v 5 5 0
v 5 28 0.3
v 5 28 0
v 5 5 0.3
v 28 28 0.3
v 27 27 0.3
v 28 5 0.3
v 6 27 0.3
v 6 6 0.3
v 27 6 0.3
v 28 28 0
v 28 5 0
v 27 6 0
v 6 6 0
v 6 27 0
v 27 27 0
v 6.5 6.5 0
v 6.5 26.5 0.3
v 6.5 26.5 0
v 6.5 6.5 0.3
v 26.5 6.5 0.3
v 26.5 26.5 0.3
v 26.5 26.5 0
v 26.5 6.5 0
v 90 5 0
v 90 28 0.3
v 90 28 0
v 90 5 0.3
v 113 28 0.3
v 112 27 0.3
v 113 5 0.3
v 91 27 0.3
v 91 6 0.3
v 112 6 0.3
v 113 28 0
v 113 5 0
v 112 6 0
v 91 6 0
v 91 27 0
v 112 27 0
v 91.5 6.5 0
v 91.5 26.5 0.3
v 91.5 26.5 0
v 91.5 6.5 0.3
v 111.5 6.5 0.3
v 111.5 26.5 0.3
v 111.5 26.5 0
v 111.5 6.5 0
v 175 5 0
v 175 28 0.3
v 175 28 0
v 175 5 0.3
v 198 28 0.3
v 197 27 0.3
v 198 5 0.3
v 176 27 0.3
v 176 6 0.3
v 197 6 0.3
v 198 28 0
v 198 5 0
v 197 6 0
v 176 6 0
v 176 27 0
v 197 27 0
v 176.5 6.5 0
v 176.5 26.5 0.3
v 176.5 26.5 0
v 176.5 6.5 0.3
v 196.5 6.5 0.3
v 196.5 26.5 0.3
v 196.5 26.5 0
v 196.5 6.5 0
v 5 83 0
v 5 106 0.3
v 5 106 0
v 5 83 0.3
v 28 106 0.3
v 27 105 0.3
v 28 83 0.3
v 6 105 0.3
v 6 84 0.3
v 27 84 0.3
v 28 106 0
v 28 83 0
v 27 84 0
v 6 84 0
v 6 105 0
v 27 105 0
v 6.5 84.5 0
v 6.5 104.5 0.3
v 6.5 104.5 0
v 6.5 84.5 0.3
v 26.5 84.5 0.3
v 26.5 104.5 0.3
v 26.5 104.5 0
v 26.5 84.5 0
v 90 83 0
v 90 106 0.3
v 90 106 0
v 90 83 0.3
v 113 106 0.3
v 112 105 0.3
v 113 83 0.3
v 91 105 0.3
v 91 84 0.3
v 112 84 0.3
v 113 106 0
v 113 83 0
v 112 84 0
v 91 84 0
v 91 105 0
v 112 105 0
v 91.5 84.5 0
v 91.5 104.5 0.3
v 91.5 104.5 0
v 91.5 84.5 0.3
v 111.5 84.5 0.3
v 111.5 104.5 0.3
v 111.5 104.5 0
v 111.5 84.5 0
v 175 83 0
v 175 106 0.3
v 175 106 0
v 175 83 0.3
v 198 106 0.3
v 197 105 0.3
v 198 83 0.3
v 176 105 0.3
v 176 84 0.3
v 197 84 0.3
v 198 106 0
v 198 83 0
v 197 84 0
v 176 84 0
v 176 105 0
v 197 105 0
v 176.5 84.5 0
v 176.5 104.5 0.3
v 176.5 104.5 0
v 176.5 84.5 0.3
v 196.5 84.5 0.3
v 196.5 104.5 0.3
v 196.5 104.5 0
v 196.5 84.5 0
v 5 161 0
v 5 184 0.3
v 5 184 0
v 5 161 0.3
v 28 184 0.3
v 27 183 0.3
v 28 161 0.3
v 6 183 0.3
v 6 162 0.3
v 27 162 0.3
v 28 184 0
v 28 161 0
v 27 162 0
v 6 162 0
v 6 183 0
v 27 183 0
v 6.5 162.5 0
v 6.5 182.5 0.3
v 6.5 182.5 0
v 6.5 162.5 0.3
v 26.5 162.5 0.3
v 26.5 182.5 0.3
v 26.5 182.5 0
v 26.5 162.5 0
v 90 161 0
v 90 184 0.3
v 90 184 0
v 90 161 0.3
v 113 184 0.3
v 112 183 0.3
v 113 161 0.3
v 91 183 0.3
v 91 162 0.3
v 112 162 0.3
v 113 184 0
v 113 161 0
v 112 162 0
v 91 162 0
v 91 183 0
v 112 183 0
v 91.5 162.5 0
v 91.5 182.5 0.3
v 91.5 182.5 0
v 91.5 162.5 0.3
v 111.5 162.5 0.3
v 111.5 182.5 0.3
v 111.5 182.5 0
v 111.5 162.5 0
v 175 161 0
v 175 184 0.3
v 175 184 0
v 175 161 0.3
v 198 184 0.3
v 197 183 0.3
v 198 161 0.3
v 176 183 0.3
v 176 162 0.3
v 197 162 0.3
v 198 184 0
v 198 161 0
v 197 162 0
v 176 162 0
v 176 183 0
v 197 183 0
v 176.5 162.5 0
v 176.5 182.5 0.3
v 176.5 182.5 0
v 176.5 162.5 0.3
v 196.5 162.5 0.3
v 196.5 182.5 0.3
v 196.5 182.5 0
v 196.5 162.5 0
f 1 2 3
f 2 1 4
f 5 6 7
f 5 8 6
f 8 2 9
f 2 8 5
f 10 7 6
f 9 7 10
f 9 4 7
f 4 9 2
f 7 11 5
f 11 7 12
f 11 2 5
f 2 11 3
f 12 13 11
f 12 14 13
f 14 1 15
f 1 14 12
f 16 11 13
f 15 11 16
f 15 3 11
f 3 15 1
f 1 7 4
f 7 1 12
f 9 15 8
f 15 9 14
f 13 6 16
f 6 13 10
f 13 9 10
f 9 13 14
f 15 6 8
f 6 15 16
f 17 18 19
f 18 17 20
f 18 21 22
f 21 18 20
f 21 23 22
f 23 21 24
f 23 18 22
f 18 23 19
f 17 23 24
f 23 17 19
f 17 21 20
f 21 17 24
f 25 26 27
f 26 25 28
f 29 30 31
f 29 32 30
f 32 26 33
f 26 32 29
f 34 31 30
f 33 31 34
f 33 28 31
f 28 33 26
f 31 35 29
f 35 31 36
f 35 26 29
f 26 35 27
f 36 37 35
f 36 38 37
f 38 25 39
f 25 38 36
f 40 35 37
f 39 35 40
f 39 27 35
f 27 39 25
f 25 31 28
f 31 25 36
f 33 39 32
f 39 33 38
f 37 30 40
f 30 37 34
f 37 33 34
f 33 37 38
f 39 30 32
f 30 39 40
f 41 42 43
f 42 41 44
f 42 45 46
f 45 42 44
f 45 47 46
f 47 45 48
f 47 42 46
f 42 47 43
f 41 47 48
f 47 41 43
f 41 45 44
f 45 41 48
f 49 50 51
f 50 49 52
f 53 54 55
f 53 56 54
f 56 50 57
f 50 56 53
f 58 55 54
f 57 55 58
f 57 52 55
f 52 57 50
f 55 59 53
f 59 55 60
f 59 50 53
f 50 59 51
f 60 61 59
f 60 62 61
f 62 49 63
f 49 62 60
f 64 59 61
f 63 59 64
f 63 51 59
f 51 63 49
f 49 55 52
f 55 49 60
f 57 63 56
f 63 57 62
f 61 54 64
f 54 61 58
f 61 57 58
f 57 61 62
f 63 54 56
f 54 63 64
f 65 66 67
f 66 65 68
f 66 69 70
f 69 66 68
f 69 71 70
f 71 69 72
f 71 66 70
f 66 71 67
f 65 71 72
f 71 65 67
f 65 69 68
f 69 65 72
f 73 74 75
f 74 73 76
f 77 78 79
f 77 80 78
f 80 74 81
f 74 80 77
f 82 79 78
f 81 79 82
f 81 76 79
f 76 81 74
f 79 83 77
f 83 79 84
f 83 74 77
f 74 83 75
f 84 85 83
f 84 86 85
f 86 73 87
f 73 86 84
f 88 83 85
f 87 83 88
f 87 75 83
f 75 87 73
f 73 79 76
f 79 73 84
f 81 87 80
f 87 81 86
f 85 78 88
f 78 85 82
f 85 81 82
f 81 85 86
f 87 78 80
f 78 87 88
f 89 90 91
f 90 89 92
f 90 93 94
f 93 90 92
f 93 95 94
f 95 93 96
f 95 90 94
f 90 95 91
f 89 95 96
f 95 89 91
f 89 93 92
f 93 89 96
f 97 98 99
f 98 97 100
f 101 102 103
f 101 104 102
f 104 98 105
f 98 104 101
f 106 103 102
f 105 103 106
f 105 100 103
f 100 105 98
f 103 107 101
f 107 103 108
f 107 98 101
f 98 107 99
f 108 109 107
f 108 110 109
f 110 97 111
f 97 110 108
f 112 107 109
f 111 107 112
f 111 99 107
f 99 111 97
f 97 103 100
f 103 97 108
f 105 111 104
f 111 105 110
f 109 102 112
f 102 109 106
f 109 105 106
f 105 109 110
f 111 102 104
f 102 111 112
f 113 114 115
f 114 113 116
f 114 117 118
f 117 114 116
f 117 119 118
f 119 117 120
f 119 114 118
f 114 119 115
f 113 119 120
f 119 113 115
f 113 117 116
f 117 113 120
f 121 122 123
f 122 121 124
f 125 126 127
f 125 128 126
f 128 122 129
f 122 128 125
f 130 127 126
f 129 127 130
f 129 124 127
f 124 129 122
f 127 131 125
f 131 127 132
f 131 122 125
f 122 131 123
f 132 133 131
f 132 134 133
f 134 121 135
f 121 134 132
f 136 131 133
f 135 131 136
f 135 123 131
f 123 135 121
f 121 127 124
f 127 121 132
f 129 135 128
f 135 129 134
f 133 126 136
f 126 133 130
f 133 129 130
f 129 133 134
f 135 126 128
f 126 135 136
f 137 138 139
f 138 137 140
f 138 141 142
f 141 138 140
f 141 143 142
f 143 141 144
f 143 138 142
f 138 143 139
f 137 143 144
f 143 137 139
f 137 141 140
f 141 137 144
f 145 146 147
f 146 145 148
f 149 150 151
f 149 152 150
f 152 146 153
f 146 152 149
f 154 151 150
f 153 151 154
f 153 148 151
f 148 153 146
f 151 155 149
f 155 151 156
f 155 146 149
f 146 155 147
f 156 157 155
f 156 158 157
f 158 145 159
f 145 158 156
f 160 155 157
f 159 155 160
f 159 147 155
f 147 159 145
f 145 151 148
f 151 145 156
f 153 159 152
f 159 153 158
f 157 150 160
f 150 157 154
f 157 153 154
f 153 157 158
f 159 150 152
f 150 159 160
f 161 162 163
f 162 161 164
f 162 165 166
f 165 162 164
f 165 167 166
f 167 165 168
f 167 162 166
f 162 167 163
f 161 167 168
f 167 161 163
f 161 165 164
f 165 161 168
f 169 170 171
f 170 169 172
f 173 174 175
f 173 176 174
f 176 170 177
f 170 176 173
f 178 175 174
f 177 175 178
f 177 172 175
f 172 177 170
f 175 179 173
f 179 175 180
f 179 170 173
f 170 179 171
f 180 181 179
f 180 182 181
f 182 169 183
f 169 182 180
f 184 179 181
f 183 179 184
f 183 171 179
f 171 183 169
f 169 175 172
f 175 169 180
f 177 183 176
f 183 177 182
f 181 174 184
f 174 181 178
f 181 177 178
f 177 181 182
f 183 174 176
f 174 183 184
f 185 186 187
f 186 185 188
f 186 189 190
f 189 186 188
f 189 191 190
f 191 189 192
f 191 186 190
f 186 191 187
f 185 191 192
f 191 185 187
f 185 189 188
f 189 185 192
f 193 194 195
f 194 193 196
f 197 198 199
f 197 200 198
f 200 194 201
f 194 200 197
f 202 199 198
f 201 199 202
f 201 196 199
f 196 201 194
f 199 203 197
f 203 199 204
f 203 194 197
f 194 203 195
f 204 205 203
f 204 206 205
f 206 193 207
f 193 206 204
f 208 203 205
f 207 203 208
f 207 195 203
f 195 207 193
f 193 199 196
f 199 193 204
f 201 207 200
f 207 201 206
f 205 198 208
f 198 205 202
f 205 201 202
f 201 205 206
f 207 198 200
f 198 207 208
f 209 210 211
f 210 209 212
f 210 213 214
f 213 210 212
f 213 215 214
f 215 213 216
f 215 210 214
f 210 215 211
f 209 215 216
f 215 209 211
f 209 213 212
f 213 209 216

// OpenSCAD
/**
 * Print designed to check that you bed is level
 *
 * print four small squares in each corner to ensure even print quality and good adhesion.
 */

// Define your printers printable area
// If you are using Sprinter firmware then these come directly from configuration.h

X_MAX_LENGTH = 200;
Y_MAX_LENGTH = 186;

THICKNESS = 0.3; //Square / outline thickness
SIZE = 20; //Square width / height
GAP = 0.5; //Width of border between square and parameter
OUTLINE_WIDTH = 1; //Width of parameter around square
OFFSET = 5; //Offset from limits in each axis

translate([OFFSET, OFFSET, 0]) square(); //Top Left
translate([(X_MAX_LENGTH / 2) - (SIZE / 2), OFFSET, 0]) square(); //Top Middle
translate([X_MAX_LENGTH - OFFSET - SIZE, OFFSET, 0]) square(); //Top Right

translate([OFFSET, (Y_MAX_LENGTH / 2) - (SIZE / 2), 0]) square(); //Middle Left
translate([(X_MAX_LENGTH / 2) - (SIZE / 2), (Y_MAX_LENGTH / 2) - (SIZE / 2), 0]) square(); //Middle Middle
translate([X_MAX_LENGTH - OFFSET - SIZE, (Y_MAX_LENGTH / 2) - (SIZE / 2), 0]) square(); //Middle Right

translate([OFFSET, Y_MAX_LENGTH - OFFSET - SIZE, 0]) square(); //Bottom Left
translate([(X_MAX_LENGTH / 2) - (SIZE / 2), Y_MAX_LENGTH - OFFSET - SIZE, 0]) square(); //Bottom Middle
translate([X_MAX_LENGTH - OFFSET - SIZE, Y_MAX_LENGTH - OFFSET - SIZE, 0]) square(); //Bottom Right

module square() {
	//Center square
	translate([
				OUTLINE_WIDTH + GAP,
				OUTLINE_WIDTH + GAP,
				0
			])
		cube([SIZE, SIZE, THICKNESS]);

	//Parameter
	difference() {
		//Outer square
		cube([
				SIZE + (2 * (GAP + OUTLINE_WIDTH)),
				SIZE + (2 * (GAP + OUTLINE_WIDTH)),
				THICKNESS
			]);

		//Inner square
		translate([OUTLINE_WIDTH, OUTLINE_WIDTH, -5])
			cube([SIZE + (2 * GAP), SIZE + (2 * GAP), 10]);
	}
}
